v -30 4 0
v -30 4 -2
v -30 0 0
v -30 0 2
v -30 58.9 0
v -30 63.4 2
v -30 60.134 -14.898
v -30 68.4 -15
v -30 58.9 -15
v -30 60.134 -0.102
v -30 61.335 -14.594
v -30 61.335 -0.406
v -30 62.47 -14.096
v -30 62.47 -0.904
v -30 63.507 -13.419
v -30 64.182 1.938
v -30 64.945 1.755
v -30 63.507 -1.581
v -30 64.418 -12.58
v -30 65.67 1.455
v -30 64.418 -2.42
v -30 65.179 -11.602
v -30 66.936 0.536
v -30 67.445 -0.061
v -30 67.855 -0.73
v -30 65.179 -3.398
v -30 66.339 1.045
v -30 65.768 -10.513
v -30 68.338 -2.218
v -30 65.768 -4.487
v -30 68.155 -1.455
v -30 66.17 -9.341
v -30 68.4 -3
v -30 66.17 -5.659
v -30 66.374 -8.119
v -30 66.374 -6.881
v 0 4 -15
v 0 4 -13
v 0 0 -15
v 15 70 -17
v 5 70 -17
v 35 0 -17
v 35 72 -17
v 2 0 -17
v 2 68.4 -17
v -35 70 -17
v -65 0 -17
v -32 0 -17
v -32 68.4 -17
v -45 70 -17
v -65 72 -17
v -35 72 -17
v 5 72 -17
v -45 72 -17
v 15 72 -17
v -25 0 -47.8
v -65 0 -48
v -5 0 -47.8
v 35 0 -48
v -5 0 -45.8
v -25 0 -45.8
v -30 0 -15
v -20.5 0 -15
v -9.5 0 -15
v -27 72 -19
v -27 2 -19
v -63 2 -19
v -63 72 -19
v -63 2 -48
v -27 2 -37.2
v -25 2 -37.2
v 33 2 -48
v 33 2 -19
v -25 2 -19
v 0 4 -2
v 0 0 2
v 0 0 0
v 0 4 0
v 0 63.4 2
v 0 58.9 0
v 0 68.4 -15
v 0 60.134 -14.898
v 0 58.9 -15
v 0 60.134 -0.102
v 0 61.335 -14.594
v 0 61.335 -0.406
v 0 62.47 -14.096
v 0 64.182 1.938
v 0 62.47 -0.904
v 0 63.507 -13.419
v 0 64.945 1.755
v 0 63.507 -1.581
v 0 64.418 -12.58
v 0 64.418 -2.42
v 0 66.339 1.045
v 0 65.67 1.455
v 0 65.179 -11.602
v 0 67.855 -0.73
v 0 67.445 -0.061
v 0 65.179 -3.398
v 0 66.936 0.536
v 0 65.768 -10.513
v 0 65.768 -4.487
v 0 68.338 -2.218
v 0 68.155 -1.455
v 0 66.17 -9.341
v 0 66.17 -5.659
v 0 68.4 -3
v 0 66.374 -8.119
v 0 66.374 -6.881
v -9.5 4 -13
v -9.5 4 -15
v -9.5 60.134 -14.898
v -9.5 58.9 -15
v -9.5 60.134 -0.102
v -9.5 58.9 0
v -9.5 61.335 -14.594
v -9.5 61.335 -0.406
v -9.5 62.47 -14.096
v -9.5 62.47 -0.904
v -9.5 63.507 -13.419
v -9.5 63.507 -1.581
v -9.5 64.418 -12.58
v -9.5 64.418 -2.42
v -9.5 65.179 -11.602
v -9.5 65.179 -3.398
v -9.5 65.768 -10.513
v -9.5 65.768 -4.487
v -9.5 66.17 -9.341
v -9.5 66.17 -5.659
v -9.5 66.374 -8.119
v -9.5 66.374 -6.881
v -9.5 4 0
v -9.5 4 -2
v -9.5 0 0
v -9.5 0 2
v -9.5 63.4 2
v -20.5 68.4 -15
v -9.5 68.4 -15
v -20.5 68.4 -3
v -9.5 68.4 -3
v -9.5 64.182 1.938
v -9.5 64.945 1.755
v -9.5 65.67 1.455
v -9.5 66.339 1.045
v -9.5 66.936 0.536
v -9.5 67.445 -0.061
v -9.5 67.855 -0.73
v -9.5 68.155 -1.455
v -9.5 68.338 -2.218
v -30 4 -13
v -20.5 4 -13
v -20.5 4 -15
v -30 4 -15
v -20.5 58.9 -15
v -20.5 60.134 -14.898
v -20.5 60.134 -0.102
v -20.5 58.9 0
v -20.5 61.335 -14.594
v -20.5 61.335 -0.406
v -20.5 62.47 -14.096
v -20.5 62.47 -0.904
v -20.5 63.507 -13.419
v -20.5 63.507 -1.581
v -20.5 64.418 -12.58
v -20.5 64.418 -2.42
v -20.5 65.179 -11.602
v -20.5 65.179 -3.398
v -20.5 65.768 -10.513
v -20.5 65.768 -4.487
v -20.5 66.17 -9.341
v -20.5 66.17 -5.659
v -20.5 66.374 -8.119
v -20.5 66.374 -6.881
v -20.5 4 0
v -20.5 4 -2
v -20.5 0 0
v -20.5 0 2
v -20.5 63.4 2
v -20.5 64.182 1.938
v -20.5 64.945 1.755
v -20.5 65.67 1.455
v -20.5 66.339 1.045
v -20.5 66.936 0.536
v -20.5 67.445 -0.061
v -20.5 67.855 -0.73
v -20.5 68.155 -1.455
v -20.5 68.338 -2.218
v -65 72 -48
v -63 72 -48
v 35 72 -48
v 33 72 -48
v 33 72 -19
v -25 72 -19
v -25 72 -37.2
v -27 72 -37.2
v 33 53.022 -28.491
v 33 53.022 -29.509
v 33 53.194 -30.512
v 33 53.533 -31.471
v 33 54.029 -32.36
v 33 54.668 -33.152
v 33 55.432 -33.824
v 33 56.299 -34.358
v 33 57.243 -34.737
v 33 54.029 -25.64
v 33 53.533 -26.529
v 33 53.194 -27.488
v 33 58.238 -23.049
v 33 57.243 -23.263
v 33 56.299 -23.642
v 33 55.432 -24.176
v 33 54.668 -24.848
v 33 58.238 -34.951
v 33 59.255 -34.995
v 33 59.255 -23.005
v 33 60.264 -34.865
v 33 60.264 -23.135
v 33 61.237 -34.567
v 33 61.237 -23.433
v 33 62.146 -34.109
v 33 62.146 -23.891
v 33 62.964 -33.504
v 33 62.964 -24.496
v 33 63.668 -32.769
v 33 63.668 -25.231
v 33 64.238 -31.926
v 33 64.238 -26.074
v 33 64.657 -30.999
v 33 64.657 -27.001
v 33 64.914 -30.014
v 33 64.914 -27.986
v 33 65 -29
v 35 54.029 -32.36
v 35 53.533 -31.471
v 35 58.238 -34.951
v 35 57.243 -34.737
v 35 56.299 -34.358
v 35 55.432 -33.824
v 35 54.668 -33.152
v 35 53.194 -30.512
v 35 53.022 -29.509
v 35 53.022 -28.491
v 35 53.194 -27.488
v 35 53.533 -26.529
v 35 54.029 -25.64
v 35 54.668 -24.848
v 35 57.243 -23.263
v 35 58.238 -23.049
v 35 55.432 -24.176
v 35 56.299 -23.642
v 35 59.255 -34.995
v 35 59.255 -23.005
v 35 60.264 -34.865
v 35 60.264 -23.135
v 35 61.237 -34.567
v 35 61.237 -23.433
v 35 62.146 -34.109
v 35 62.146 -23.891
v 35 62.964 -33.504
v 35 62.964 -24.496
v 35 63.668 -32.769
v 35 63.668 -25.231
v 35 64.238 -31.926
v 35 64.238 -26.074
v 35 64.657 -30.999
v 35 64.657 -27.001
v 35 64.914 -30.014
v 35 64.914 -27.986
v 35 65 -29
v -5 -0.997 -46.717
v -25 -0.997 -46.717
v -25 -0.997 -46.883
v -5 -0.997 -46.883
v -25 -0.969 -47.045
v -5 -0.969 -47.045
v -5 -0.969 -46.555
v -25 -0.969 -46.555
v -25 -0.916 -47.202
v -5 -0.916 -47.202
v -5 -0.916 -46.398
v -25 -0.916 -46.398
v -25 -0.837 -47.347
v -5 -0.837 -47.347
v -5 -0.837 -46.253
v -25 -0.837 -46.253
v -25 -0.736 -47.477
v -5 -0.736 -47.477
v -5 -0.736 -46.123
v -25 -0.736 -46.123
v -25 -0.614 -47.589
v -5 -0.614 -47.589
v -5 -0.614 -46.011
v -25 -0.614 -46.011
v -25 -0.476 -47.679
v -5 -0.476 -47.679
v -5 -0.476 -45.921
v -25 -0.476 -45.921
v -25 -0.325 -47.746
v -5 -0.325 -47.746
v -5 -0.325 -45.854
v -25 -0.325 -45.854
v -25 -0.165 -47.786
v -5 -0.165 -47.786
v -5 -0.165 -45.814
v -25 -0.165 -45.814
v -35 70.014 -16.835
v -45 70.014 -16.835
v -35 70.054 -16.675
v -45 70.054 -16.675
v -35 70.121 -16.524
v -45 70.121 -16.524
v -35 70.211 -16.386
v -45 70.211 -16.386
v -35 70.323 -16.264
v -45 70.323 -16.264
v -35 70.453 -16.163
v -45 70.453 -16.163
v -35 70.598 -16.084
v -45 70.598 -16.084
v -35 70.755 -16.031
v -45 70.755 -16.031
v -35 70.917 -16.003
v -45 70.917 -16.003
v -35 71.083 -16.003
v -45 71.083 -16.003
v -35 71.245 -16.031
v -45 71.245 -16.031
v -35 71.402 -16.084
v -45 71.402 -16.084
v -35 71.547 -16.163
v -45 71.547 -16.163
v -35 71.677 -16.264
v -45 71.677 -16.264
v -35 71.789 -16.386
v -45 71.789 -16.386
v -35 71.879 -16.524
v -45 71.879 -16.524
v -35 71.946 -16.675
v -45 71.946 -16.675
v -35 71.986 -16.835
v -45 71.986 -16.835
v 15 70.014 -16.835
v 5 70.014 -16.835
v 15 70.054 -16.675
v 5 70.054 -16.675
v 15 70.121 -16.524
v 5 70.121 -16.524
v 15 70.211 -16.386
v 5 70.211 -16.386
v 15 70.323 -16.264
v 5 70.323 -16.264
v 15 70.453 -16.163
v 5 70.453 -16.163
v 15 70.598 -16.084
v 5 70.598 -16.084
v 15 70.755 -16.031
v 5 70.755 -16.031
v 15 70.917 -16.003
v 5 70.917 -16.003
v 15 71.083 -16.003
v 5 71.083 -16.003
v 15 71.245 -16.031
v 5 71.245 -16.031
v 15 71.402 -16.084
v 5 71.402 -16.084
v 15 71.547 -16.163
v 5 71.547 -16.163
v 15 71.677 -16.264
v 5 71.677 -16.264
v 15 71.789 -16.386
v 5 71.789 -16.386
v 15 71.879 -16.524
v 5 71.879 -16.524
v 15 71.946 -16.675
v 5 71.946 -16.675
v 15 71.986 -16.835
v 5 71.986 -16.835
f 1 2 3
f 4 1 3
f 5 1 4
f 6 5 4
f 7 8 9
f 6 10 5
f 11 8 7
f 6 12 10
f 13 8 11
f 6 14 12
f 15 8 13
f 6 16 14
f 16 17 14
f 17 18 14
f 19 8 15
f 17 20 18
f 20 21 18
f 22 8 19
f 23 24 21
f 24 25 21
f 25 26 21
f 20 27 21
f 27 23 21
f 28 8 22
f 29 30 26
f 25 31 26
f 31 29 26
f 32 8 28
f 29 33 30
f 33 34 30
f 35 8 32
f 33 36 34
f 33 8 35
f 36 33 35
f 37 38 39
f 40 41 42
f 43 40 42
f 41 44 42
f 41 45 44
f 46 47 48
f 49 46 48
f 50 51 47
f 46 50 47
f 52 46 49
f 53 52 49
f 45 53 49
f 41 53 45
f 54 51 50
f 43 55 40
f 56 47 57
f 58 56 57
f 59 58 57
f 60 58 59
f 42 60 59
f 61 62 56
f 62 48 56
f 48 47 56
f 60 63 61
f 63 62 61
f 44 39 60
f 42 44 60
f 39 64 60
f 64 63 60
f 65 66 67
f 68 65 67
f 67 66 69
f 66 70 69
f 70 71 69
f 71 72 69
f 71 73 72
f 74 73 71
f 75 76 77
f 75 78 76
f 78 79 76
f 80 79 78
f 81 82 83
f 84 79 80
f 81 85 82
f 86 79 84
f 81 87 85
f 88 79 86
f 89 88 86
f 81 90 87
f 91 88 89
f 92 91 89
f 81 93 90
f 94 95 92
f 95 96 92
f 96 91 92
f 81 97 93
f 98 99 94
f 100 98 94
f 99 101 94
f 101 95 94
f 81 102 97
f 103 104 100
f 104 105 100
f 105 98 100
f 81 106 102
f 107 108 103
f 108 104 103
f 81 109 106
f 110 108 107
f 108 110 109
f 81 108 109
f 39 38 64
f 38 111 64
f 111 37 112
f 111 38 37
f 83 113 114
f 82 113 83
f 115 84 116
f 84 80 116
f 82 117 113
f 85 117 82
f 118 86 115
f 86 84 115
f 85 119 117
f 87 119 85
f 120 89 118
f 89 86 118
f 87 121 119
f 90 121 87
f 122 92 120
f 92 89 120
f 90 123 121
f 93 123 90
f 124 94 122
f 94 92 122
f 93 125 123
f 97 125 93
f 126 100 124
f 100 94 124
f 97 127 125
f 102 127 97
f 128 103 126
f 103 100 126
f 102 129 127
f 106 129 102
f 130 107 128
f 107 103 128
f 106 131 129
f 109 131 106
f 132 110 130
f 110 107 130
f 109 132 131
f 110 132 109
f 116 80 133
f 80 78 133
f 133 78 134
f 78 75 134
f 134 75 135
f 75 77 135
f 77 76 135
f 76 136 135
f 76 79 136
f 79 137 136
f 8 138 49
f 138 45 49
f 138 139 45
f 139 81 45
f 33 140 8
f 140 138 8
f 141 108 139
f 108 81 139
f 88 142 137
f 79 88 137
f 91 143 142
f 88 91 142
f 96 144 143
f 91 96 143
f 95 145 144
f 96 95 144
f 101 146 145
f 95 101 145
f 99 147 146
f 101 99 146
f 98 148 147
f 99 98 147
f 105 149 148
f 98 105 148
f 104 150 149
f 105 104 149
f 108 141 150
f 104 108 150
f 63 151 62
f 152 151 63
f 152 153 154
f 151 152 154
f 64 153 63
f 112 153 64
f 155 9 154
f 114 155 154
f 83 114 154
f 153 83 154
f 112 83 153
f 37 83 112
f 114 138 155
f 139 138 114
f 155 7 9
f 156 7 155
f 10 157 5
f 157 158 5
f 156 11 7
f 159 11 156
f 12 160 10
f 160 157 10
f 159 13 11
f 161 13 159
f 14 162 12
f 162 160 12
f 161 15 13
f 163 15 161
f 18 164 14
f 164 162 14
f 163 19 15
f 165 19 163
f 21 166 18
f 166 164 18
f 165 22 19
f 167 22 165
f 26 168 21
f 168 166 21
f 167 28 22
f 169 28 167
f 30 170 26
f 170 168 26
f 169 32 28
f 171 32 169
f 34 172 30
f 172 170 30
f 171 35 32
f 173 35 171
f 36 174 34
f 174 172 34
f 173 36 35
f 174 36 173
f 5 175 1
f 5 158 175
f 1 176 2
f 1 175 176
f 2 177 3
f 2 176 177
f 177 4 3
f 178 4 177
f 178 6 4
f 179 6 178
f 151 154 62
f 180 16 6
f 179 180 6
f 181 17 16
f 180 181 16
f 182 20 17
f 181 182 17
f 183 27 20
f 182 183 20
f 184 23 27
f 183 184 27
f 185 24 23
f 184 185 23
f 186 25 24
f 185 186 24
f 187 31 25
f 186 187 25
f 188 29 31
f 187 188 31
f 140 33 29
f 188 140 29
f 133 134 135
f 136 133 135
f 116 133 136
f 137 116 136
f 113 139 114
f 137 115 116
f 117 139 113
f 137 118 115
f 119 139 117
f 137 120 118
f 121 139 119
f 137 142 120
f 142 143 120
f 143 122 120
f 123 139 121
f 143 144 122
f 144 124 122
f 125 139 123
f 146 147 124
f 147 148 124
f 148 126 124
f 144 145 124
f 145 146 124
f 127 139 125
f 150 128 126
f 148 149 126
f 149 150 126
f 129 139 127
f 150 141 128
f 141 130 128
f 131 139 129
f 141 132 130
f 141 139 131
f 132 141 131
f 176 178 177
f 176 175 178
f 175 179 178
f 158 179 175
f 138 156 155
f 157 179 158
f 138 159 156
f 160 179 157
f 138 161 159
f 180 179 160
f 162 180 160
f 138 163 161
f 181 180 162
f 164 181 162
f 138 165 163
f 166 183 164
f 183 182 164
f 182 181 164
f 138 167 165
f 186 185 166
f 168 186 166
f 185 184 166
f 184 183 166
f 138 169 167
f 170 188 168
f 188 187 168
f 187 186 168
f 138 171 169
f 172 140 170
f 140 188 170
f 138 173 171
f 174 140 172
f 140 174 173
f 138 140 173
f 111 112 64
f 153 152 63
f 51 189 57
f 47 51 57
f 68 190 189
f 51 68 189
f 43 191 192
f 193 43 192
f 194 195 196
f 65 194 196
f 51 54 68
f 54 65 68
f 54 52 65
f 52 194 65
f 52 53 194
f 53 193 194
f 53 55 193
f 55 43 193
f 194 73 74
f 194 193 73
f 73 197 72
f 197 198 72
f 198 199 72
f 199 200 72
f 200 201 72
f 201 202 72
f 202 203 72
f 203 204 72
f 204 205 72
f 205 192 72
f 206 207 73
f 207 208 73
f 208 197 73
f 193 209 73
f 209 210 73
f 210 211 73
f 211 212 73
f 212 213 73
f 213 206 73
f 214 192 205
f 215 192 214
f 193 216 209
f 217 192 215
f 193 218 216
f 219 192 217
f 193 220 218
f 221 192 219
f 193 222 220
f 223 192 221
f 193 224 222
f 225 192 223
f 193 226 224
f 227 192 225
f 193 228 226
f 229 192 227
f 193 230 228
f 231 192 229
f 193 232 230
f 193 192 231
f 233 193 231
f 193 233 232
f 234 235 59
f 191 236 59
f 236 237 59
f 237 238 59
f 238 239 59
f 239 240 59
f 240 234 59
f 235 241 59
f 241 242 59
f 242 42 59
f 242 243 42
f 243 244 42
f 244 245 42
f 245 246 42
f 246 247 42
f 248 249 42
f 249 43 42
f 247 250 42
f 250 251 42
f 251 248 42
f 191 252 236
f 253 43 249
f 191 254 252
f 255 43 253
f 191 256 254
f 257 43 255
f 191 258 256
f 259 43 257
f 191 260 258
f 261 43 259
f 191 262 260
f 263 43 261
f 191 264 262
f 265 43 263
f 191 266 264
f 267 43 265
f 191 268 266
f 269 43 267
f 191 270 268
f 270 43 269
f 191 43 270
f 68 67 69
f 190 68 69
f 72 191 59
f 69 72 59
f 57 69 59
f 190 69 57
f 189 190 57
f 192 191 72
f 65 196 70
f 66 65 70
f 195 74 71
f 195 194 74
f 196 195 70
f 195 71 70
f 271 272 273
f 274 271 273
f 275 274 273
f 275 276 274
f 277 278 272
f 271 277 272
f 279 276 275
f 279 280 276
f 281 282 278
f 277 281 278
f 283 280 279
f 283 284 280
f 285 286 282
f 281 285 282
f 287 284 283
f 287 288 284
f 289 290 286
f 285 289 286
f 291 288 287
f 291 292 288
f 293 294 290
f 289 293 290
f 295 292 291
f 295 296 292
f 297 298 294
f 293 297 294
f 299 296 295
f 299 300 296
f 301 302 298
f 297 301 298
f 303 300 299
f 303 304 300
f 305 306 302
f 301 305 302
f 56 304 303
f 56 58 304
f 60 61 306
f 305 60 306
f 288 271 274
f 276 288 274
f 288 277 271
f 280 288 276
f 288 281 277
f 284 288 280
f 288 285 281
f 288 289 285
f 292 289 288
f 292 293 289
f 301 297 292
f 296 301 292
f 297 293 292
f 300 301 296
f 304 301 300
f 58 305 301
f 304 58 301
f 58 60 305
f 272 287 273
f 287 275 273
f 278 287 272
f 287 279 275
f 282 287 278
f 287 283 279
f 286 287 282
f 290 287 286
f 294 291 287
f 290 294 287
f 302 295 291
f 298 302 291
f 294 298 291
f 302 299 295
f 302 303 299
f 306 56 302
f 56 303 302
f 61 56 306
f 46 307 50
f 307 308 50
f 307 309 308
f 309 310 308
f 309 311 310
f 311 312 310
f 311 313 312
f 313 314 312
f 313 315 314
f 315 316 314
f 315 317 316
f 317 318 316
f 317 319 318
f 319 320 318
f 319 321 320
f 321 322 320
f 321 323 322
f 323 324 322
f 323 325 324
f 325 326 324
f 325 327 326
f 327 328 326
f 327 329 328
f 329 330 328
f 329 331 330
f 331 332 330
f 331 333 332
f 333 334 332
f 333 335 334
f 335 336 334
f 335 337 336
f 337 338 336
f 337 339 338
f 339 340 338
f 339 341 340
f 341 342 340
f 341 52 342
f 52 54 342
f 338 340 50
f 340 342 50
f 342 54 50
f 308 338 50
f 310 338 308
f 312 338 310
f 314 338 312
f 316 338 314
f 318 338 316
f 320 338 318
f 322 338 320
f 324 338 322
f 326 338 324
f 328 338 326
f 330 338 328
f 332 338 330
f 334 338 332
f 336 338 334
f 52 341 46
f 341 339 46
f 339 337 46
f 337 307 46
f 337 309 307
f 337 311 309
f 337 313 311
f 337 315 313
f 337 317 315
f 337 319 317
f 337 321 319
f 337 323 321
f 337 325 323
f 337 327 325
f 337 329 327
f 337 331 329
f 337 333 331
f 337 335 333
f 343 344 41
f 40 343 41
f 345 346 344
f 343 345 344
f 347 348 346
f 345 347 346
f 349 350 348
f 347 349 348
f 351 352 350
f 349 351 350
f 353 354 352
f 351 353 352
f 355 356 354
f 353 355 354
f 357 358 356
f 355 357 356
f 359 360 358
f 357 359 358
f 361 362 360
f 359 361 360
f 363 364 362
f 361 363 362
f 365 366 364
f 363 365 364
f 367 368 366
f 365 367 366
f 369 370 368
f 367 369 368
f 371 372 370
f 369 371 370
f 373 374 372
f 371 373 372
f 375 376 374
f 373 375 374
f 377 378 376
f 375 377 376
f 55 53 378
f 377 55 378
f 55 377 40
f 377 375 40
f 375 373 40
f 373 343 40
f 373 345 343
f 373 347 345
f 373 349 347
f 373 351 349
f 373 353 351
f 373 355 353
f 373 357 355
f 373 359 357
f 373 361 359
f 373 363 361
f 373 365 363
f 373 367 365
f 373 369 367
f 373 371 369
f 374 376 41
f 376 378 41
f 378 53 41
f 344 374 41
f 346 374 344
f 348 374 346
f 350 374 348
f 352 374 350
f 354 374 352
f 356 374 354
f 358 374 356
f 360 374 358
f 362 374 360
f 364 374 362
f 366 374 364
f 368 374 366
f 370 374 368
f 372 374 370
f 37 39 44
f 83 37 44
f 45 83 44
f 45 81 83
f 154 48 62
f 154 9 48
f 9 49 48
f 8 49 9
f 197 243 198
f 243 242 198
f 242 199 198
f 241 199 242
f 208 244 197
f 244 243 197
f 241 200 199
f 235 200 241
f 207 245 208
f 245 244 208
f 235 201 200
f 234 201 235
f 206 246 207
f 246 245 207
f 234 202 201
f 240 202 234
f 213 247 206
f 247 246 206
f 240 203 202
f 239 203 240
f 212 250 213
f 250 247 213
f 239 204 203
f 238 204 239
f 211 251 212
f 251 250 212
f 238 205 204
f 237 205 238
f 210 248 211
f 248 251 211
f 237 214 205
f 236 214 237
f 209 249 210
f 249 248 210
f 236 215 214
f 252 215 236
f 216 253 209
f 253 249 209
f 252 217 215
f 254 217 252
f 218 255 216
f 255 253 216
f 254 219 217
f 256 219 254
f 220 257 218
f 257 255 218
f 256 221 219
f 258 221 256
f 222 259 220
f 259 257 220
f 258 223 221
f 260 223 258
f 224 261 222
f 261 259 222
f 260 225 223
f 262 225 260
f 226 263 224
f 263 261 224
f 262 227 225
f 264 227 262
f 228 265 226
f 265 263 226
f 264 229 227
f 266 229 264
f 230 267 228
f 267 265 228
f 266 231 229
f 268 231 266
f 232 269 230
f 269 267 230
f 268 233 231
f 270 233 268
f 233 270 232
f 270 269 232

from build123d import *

# Parameters (mm, degrees)
BOSS_EXTRUDE1_DEPTH      = 30
FILLET1_R                = 5
SKETCH2_W                = 11
SKETCH2_H                = 68.4
CUT_EXTRUDE1_DEPTH       = 17
BOSS_EXTRUDE3_DEPTH      = 2
BOSS_EXTRUDE4_DEPTH      = 31
SKETCH4_W                = 2
SKETCH4_H                = 70
BOSS_EXTRUDE5_DEPTH      = 18.2
BOSS_EXTRUDE6_DEPTH      = 10
BOSS_EXTRUDE6_DEPTH_BACK = 10
BOSS_EXTRUDE7_START      = 20
BOSS_EXTRUDE7_DEPTH      = 10
BOSS_EXTRUDE8_START      = -30
BOSS_EXTRUDE8_DEPTH      = 10
CHAMFER1_SIZE            = 2
CUT_EXTRUDE2_REACH       = 134.242
SKETCH6_R                = 6


with BuildPart() as part:
    # Sketch1 → Boss-Extrude1 (new body)
    with BuildSketch(Plane(origin=(0, 0, 0), x_dir=(0, 0, -1), z_dir=(1, 0, 0))):
        with BuildLine():
            ThreePointArc((-2, 58.9), (7.5, 68.4), (17, 58.9))
            Line((17, 58.9), (17, 0))
            Line((17, 0), (15, 0))
            Line((15, 0), (15, 58.9))
            ThreePointArc((15, 58.9), (7.5, 66.4), (0, 58.9))
            Line((0, 58.9), (0, 0))
            Line((0, 0), (-2, 0))
            Line((-2, 0), (-2, 58.9))
        make_face()
        with BuildLine():
            Line((-2, 0), (0, 0))
            Line((0, 0), (0, 4))
            Line((0, 4), (0, 58.9))
            ThreePointArc((0, 58.9), (2.196699141, 64.203300859), (7.5, 66.4))
            Line((7.5, 66.4), (7.5, 68.4))
            ThreePointArc((7.5, 68.4), (0.782485579, 65.617514421), (-2, 58.9))
            Line((-2, 58.9), (-2, 0))
        make_face()
        Polygon((0, 4), (0, 0), (2, 4), align=None)
        Polygon((15, 0), (15, 4), (13, 4), align=None)
        with BuildLine():
            Line((17, 68.4), (7.5, 68.4))
            ThreePointArc((7.5, 68.4), (14.217514421, 65.617514421), (17, 58.9))
            Line((17, 58.9), (17, 68.4))
        make_face()
        with BuildLine():
            Line((-2, 68.4), (-2, 58.9))
            ThreePointArc((-2, 58.9), (0.782485579, 65.617514421), (7.5, 68.4))
            Line((7.5, 68.4), (-2, 68.4))
        make_face()
    extrude(amount=-BOSS_EXTRUDE1_DEPTH)

    # Fillet1
    fillet1_edges = [part.edges().sort_by_distance(p)[0] for p in [
        (-15, 68.4, 2),
    ]]
    fillet(fillet1_edges, radius=FILLET1_R)

    # Sketch2 → Cut-Extrude1 (cut)
    with BuildSketch(Plane.XY.offset(2)):
        with Locations((-15, 34.2)):
            Rectangle(SKETCH2_W, SKETCH2_H)
    extrude(amount=-CUT_EXTRUDE1_DEPTH, mode=Mode.SUBTRACT)

    # Sketch3 → Boss-Extrude3 (add)
    with BuildSketch(Plane(origin=(0, 0, -17), x_dir=(-1, 0, 0), z_dir=(0, 0, -1))):
        Polygon((-33, 2), (0, 2), (0, 0), (65, 0), (65, 72), (-33, 72), align=None)
    extrude(amount=BOSS_EXTRUDE3_DEPTH)

    # Sketch3<3> → Boss-Extrude4 (add)
    with BuildSketch(Plane(origin=(0, 0, -17), x_dir=(-1, 0, 0), z_dir=(0, 0, -1))):
        Polygon((65, 72), (63, 72), (63, 2), (-33, 2), (-33, 72), (-35, 72), (-35, 0), (65, 0), align=None)
    extrude(amount=BOSS_EXTRUDE4_DEPTH)

    # Sketch4 → Boss-Extrude5 (add)
    with BuildSketch(Plane(origin=(0, 0, -19), x_dir=(-1, 0, 0), z_dir=(0, 0, -1))):
        with Locations((26, 37)):
            Rectangle(SKETCH4_W, SKETCH4_H)
    extrude(amount=BOSS_EXTRUDE5_DEPTH)

    # Sketch5 → Boss-Extrude6 (add, two sides: drawn at the far end of the back side and taken through both)
    with BuildSketch(Plane.ZY.offset(15).offset(-BOSS_EXTRUDE6_DEPTH_BACK)):
        with BuildLine():
            Line((-47.8, 0), (-45.8, 0))
            ThreePointArc((-45.8, 0), (-46.8, -1), (-47.8, 0))
        make_face()
    extrude(amount=BOSS_EXTRUDE6_DEPTH + BOSS_EXTRUDE6_DEPTH_BACK)

    # Sketch5<3> → Boss-Extrude7 (add)
    with BuildSketch(Plane.ZY.offset(15).offset(BOSS_EXTRUDE7_START)):
        with BuildLine():
            ThreePointArc((-17, 72), (-16, 71), (-17, 70))
            Line((-17, 70), (-17, 72))
        make_face()
    extrude(amount=BOSS_EXTRUDE7_DEPTH)

    # Sketch5<4> → Boss-Extrude8 (add)
    with BuildSketch(Plane.ZY.offset(15).offset(BOSS_EXTRUDE8_START)):
        with BuildLine():
            ThreePointArc((-17, 72), (-16, 71), (-17, 70))
            Line((-17, 70), (-17, 72))
        make_face()
    extrude(amount=BOSS_EXTRUDE8_DEPTH)

    # Chamfer1
    chamfer1_edges = [part.edges().sort_by_distance(p)[0] for p in [
        (-30, 34.2, -17),
        (0, 34.2, -17),
    ]]
    chamfer(chamfer1_edges, length=CHAMFER1_SIZE - 0.0001)  # a hair under: the kernel refuses the full size

    # Sketch6 → Cut-Extrude2 (cut, up to next)
    with BuildSketch(Plane(origin=(35, 0, 0), x_dir=(0, 0, -1), z_dir=(1, 0, 0)), mode=Mode.PRIVATE) as cut_extrude2_sk1:
        with Locations(Location((29, 59, 0), (0, 0, 90))):
            Circle(SKETCH6_R)
    cut_extrude2_tool1 = extrude(cut_extrude2_sk1.sketch, amount=-CUT_EXTRUDE2_REACH, mode=Mode.PRIVATE) & part.part
    add(cut_extrude2_tool1.solids().sort_by_distance((35, 59, -29))[0], mode=Mode.SUBTRACT)


solid = part.part
